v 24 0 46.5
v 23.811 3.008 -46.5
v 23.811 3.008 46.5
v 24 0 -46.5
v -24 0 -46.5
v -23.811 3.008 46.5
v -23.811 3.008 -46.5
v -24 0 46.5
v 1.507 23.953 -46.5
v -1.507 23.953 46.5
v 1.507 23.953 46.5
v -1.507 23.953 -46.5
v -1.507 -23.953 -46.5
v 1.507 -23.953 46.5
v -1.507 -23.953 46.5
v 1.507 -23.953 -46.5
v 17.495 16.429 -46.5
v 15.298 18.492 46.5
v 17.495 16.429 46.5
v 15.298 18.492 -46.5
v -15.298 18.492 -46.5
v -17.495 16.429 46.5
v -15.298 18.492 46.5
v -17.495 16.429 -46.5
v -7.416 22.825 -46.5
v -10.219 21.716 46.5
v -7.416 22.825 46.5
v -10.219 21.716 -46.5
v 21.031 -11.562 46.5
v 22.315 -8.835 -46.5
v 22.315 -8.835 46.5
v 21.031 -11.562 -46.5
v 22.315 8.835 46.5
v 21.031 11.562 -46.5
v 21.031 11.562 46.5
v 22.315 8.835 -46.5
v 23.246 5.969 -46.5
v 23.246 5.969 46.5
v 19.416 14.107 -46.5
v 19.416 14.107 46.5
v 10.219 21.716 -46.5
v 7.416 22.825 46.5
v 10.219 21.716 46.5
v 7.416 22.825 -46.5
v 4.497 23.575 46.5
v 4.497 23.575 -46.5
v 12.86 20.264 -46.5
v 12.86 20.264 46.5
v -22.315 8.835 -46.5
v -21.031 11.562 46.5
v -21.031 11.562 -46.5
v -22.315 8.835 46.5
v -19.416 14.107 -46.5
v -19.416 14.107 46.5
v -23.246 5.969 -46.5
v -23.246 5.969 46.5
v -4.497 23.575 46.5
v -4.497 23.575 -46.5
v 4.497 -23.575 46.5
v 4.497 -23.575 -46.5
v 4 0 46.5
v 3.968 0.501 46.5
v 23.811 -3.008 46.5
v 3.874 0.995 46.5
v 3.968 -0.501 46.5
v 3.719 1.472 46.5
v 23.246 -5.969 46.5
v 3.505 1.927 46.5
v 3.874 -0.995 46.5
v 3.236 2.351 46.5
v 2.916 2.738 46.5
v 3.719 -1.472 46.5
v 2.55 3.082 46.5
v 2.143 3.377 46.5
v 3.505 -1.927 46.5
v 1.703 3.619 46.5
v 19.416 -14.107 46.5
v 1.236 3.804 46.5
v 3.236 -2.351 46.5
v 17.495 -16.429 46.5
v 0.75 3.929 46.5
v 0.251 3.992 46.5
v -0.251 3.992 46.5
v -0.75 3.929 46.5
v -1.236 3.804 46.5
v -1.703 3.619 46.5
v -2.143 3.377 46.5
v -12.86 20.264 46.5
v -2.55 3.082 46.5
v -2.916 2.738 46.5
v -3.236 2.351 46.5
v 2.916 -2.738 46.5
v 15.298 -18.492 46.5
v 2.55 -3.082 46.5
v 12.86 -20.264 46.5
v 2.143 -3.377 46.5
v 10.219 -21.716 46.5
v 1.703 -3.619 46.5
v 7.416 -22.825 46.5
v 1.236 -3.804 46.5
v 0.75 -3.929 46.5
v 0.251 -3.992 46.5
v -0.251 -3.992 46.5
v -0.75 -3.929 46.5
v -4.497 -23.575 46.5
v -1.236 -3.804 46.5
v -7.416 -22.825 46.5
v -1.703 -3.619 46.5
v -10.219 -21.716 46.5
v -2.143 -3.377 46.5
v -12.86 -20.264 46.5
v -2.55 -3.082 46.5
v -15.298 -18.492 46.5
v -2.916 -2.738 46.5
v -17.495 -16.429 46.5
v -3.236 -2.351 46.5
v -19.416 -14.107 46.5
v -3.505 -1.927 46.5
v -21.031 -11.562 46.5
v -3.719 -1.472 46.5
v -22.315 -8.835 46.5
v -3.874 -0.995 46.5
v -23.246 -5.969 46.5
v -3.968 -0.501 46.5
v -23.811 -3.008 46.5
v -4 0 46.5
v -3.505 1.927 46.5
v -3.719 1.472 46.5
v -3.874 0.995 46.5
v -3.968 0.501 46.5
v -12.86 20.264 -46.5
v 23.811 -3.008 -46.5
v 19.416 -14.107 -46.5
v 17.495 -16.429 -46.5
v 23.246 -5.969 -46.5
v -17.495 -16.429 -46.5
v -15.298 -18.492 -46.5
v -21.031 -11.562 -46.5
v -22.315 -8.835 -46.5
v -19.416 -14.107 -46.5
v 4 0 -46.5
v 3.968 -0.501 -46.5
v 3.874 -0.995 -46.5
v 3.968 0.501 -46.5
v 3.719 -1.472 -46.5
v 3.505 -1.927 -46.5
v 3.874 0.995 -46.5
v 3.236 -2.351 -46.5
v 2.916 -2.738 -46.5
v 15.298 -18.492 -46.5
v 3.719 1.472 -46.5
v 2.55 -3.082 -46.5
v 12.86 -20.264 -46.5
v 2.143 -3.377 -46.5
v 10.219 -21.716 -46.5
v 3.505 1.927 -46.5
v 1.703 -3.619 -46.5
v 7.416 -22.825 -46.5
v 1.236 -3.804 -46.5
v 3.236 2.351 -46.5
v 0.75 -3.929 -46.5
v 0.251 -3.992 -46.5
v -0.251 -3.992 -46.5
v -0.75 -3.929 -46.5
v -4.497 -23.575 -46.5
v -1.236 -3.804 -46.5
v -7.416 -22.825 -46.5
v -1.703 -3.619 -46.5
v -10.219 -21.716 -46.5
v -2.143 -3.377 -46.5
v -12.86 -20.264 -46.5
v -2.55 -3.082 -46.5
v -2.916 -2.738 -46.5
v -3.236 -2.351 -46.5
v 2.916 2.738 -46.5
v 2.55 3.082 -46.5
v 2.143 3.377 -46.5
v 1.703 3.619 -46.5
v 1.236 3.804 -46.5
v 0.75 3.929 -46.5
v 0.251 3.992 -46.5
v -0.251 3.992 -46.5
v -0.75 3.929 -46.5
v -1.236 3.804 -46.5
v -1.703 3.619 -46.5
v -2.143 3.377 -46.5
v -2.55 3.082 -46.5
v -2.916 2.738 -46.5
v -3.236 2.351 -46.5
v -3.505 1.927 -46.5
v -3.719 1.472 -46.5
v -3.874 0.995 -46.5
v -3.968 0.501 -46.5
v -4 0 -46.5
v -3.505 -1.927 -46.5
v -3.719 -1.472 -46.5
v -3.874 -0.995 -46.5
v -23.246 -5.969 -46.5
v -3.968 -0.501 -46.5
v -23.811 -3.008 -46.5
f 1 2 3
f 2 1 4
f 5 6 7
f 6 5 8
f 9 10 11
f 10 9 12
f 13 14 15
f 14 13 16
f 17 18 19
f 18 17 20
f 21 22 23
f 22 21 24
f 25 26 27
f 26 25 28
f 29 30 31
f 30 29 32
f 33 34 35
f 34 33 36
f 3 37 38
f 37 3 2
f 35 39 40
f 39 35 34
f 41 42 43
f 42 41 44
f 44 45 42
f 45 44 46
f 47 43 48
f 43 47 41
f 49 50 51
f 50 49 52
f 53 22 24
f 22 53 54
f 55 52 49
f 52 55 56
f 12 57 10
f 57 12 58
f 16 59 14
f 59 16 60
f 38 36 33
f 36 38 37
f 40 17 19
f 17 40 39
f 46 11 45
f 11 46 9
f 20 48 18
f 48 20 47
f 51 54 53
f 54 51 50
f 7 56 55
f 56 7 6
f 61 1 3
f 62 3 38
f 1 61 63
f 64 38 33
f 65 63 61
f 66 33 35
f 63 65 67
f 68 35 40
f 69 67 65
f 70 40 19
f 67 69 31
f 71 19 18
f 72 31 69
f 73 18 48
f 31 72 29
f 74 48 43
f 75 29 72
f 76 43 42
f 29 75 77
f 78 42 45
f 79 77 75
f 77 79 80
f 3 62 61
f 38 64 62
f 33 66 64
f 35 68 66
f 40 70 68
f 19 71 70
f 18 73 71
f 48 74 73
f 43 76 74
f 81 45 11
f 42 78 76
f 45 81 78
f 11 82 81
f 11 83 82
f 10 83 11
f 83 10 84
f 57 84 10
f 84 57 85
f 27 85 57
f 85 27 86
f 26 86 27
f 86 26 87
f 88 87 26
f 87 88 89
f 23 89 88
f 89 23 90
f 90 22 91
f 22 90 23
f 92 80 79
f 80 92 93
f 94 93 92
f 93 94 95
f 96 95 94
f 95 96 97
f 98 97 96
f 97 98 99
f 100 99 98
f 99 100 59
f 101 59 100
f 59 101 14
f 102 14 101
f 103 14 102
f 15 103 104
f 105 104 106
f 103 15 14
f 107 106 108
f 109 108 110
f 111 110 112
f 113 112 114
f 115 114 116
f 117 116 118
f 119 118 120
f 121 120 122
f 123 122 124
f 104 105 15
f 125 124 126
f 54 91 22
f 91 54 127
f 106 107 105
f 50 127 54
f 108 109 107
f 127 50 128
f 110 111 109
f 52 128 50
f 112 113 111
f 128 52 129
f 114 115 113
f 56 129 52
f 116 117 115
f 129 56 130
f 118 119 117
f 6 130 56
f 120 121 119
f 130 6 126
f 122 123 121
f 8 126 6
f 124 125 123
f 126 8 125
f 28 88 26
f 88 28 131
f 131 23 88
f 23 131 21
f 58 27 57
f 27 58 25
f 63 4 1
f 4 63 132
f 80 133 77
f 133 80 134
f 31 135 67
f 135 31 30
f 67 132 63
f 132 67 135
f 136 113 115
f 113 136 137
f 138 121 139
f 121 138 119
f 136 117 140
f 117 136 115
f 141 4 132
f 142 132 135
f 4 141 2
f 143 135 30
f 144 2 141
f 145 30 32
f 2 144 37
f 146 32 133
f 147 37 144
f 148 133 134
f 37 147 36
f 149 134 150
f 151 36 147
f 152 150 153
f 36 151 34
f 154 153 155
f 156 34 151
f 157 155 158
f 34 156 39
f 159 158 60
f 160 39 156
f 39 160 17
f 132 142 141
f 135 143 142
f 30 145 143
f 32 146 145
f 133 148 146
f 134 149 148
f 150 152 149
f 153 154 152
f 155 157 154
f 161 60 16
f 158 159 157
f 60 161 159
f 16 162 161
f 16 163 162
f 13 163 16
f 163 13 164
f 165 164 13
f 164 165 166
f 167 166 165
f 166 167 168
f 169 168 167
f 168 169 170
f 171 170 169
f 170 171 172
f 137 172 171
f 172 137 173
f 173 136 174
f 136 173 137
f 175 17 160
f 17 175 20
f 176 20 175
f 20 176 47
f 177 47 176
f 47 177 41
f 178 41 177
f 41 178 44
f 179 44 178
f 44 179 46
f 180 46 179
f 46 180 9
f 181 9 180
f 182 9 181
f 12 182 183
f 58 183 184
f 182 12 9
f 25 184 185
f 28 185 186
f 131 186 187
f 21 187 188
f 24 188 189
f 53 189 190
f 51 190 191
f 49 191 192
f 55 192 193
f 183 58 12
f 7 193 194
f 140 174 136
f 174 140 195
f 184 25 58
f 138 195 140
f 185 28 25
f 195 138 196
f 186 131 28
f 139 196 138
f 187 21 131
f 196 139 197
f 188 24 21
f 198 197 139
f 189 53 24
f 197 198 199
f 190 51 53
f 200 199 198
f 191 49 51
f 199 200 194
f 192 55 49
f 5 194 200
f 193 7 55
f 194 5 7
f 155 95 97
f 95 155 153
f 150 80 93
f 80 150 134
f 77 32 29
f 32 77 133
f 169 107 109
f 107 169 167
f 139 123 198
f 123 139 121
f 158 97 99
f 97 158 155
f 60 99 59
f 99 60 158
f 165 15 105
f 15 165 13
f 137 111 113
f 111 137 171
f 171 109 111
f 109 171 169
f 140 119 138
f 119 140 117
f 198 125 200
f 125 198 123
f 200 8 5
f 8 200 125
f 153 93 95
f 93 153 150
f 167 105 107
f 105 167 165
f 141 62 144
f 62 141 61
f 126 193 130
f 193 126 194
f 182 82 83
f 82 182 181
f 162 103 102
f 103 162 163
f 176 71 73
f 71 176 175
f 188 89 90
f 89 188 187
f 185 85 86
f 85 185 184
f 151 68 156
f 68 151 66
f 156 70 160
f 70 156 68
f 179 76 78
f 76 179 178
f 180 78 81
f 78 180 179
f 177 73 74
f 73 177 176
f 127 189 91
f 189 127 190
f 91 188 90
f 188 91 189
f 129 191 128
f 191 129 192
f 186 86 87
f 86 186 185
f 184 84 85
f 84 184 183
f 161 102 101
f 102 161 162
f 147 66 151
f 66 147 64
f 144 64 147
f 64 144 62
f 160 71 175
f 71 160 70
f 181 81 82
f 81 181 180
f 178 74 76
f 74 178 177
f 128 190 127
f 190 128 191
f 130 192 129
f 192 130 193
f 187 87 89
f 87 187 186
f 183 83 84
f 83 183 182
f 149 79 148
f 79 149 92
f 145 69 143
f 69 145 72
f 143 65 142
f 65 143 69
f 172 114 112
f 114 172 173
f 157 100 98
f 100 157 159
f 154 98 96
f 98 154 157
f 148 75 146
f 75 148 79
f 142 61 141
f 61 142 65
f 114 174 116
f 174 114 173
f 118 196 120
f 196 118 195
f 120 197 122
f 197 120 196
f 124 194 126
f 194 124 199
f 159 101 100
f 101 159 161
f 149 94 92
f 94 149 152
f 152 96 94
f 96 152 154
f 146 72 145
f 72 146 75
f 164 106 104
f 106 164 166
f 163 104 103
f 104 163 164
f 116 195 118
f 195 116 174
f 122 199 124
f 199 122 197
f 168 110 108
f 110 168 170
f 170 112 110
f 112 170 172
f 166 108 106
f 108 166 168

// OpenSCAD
$fn = 50;


difference() {
	union() {
		translate(v = [0, 0, -46.5000000000]) {
			cylinder(h = 93, r = 24.0000000000);
		}
	}
	union() {
		translate(v = [0, 0, -100.0000000000]) {
			cylinder(h = 200, r = 4.0000000000);
		}
	}
}
